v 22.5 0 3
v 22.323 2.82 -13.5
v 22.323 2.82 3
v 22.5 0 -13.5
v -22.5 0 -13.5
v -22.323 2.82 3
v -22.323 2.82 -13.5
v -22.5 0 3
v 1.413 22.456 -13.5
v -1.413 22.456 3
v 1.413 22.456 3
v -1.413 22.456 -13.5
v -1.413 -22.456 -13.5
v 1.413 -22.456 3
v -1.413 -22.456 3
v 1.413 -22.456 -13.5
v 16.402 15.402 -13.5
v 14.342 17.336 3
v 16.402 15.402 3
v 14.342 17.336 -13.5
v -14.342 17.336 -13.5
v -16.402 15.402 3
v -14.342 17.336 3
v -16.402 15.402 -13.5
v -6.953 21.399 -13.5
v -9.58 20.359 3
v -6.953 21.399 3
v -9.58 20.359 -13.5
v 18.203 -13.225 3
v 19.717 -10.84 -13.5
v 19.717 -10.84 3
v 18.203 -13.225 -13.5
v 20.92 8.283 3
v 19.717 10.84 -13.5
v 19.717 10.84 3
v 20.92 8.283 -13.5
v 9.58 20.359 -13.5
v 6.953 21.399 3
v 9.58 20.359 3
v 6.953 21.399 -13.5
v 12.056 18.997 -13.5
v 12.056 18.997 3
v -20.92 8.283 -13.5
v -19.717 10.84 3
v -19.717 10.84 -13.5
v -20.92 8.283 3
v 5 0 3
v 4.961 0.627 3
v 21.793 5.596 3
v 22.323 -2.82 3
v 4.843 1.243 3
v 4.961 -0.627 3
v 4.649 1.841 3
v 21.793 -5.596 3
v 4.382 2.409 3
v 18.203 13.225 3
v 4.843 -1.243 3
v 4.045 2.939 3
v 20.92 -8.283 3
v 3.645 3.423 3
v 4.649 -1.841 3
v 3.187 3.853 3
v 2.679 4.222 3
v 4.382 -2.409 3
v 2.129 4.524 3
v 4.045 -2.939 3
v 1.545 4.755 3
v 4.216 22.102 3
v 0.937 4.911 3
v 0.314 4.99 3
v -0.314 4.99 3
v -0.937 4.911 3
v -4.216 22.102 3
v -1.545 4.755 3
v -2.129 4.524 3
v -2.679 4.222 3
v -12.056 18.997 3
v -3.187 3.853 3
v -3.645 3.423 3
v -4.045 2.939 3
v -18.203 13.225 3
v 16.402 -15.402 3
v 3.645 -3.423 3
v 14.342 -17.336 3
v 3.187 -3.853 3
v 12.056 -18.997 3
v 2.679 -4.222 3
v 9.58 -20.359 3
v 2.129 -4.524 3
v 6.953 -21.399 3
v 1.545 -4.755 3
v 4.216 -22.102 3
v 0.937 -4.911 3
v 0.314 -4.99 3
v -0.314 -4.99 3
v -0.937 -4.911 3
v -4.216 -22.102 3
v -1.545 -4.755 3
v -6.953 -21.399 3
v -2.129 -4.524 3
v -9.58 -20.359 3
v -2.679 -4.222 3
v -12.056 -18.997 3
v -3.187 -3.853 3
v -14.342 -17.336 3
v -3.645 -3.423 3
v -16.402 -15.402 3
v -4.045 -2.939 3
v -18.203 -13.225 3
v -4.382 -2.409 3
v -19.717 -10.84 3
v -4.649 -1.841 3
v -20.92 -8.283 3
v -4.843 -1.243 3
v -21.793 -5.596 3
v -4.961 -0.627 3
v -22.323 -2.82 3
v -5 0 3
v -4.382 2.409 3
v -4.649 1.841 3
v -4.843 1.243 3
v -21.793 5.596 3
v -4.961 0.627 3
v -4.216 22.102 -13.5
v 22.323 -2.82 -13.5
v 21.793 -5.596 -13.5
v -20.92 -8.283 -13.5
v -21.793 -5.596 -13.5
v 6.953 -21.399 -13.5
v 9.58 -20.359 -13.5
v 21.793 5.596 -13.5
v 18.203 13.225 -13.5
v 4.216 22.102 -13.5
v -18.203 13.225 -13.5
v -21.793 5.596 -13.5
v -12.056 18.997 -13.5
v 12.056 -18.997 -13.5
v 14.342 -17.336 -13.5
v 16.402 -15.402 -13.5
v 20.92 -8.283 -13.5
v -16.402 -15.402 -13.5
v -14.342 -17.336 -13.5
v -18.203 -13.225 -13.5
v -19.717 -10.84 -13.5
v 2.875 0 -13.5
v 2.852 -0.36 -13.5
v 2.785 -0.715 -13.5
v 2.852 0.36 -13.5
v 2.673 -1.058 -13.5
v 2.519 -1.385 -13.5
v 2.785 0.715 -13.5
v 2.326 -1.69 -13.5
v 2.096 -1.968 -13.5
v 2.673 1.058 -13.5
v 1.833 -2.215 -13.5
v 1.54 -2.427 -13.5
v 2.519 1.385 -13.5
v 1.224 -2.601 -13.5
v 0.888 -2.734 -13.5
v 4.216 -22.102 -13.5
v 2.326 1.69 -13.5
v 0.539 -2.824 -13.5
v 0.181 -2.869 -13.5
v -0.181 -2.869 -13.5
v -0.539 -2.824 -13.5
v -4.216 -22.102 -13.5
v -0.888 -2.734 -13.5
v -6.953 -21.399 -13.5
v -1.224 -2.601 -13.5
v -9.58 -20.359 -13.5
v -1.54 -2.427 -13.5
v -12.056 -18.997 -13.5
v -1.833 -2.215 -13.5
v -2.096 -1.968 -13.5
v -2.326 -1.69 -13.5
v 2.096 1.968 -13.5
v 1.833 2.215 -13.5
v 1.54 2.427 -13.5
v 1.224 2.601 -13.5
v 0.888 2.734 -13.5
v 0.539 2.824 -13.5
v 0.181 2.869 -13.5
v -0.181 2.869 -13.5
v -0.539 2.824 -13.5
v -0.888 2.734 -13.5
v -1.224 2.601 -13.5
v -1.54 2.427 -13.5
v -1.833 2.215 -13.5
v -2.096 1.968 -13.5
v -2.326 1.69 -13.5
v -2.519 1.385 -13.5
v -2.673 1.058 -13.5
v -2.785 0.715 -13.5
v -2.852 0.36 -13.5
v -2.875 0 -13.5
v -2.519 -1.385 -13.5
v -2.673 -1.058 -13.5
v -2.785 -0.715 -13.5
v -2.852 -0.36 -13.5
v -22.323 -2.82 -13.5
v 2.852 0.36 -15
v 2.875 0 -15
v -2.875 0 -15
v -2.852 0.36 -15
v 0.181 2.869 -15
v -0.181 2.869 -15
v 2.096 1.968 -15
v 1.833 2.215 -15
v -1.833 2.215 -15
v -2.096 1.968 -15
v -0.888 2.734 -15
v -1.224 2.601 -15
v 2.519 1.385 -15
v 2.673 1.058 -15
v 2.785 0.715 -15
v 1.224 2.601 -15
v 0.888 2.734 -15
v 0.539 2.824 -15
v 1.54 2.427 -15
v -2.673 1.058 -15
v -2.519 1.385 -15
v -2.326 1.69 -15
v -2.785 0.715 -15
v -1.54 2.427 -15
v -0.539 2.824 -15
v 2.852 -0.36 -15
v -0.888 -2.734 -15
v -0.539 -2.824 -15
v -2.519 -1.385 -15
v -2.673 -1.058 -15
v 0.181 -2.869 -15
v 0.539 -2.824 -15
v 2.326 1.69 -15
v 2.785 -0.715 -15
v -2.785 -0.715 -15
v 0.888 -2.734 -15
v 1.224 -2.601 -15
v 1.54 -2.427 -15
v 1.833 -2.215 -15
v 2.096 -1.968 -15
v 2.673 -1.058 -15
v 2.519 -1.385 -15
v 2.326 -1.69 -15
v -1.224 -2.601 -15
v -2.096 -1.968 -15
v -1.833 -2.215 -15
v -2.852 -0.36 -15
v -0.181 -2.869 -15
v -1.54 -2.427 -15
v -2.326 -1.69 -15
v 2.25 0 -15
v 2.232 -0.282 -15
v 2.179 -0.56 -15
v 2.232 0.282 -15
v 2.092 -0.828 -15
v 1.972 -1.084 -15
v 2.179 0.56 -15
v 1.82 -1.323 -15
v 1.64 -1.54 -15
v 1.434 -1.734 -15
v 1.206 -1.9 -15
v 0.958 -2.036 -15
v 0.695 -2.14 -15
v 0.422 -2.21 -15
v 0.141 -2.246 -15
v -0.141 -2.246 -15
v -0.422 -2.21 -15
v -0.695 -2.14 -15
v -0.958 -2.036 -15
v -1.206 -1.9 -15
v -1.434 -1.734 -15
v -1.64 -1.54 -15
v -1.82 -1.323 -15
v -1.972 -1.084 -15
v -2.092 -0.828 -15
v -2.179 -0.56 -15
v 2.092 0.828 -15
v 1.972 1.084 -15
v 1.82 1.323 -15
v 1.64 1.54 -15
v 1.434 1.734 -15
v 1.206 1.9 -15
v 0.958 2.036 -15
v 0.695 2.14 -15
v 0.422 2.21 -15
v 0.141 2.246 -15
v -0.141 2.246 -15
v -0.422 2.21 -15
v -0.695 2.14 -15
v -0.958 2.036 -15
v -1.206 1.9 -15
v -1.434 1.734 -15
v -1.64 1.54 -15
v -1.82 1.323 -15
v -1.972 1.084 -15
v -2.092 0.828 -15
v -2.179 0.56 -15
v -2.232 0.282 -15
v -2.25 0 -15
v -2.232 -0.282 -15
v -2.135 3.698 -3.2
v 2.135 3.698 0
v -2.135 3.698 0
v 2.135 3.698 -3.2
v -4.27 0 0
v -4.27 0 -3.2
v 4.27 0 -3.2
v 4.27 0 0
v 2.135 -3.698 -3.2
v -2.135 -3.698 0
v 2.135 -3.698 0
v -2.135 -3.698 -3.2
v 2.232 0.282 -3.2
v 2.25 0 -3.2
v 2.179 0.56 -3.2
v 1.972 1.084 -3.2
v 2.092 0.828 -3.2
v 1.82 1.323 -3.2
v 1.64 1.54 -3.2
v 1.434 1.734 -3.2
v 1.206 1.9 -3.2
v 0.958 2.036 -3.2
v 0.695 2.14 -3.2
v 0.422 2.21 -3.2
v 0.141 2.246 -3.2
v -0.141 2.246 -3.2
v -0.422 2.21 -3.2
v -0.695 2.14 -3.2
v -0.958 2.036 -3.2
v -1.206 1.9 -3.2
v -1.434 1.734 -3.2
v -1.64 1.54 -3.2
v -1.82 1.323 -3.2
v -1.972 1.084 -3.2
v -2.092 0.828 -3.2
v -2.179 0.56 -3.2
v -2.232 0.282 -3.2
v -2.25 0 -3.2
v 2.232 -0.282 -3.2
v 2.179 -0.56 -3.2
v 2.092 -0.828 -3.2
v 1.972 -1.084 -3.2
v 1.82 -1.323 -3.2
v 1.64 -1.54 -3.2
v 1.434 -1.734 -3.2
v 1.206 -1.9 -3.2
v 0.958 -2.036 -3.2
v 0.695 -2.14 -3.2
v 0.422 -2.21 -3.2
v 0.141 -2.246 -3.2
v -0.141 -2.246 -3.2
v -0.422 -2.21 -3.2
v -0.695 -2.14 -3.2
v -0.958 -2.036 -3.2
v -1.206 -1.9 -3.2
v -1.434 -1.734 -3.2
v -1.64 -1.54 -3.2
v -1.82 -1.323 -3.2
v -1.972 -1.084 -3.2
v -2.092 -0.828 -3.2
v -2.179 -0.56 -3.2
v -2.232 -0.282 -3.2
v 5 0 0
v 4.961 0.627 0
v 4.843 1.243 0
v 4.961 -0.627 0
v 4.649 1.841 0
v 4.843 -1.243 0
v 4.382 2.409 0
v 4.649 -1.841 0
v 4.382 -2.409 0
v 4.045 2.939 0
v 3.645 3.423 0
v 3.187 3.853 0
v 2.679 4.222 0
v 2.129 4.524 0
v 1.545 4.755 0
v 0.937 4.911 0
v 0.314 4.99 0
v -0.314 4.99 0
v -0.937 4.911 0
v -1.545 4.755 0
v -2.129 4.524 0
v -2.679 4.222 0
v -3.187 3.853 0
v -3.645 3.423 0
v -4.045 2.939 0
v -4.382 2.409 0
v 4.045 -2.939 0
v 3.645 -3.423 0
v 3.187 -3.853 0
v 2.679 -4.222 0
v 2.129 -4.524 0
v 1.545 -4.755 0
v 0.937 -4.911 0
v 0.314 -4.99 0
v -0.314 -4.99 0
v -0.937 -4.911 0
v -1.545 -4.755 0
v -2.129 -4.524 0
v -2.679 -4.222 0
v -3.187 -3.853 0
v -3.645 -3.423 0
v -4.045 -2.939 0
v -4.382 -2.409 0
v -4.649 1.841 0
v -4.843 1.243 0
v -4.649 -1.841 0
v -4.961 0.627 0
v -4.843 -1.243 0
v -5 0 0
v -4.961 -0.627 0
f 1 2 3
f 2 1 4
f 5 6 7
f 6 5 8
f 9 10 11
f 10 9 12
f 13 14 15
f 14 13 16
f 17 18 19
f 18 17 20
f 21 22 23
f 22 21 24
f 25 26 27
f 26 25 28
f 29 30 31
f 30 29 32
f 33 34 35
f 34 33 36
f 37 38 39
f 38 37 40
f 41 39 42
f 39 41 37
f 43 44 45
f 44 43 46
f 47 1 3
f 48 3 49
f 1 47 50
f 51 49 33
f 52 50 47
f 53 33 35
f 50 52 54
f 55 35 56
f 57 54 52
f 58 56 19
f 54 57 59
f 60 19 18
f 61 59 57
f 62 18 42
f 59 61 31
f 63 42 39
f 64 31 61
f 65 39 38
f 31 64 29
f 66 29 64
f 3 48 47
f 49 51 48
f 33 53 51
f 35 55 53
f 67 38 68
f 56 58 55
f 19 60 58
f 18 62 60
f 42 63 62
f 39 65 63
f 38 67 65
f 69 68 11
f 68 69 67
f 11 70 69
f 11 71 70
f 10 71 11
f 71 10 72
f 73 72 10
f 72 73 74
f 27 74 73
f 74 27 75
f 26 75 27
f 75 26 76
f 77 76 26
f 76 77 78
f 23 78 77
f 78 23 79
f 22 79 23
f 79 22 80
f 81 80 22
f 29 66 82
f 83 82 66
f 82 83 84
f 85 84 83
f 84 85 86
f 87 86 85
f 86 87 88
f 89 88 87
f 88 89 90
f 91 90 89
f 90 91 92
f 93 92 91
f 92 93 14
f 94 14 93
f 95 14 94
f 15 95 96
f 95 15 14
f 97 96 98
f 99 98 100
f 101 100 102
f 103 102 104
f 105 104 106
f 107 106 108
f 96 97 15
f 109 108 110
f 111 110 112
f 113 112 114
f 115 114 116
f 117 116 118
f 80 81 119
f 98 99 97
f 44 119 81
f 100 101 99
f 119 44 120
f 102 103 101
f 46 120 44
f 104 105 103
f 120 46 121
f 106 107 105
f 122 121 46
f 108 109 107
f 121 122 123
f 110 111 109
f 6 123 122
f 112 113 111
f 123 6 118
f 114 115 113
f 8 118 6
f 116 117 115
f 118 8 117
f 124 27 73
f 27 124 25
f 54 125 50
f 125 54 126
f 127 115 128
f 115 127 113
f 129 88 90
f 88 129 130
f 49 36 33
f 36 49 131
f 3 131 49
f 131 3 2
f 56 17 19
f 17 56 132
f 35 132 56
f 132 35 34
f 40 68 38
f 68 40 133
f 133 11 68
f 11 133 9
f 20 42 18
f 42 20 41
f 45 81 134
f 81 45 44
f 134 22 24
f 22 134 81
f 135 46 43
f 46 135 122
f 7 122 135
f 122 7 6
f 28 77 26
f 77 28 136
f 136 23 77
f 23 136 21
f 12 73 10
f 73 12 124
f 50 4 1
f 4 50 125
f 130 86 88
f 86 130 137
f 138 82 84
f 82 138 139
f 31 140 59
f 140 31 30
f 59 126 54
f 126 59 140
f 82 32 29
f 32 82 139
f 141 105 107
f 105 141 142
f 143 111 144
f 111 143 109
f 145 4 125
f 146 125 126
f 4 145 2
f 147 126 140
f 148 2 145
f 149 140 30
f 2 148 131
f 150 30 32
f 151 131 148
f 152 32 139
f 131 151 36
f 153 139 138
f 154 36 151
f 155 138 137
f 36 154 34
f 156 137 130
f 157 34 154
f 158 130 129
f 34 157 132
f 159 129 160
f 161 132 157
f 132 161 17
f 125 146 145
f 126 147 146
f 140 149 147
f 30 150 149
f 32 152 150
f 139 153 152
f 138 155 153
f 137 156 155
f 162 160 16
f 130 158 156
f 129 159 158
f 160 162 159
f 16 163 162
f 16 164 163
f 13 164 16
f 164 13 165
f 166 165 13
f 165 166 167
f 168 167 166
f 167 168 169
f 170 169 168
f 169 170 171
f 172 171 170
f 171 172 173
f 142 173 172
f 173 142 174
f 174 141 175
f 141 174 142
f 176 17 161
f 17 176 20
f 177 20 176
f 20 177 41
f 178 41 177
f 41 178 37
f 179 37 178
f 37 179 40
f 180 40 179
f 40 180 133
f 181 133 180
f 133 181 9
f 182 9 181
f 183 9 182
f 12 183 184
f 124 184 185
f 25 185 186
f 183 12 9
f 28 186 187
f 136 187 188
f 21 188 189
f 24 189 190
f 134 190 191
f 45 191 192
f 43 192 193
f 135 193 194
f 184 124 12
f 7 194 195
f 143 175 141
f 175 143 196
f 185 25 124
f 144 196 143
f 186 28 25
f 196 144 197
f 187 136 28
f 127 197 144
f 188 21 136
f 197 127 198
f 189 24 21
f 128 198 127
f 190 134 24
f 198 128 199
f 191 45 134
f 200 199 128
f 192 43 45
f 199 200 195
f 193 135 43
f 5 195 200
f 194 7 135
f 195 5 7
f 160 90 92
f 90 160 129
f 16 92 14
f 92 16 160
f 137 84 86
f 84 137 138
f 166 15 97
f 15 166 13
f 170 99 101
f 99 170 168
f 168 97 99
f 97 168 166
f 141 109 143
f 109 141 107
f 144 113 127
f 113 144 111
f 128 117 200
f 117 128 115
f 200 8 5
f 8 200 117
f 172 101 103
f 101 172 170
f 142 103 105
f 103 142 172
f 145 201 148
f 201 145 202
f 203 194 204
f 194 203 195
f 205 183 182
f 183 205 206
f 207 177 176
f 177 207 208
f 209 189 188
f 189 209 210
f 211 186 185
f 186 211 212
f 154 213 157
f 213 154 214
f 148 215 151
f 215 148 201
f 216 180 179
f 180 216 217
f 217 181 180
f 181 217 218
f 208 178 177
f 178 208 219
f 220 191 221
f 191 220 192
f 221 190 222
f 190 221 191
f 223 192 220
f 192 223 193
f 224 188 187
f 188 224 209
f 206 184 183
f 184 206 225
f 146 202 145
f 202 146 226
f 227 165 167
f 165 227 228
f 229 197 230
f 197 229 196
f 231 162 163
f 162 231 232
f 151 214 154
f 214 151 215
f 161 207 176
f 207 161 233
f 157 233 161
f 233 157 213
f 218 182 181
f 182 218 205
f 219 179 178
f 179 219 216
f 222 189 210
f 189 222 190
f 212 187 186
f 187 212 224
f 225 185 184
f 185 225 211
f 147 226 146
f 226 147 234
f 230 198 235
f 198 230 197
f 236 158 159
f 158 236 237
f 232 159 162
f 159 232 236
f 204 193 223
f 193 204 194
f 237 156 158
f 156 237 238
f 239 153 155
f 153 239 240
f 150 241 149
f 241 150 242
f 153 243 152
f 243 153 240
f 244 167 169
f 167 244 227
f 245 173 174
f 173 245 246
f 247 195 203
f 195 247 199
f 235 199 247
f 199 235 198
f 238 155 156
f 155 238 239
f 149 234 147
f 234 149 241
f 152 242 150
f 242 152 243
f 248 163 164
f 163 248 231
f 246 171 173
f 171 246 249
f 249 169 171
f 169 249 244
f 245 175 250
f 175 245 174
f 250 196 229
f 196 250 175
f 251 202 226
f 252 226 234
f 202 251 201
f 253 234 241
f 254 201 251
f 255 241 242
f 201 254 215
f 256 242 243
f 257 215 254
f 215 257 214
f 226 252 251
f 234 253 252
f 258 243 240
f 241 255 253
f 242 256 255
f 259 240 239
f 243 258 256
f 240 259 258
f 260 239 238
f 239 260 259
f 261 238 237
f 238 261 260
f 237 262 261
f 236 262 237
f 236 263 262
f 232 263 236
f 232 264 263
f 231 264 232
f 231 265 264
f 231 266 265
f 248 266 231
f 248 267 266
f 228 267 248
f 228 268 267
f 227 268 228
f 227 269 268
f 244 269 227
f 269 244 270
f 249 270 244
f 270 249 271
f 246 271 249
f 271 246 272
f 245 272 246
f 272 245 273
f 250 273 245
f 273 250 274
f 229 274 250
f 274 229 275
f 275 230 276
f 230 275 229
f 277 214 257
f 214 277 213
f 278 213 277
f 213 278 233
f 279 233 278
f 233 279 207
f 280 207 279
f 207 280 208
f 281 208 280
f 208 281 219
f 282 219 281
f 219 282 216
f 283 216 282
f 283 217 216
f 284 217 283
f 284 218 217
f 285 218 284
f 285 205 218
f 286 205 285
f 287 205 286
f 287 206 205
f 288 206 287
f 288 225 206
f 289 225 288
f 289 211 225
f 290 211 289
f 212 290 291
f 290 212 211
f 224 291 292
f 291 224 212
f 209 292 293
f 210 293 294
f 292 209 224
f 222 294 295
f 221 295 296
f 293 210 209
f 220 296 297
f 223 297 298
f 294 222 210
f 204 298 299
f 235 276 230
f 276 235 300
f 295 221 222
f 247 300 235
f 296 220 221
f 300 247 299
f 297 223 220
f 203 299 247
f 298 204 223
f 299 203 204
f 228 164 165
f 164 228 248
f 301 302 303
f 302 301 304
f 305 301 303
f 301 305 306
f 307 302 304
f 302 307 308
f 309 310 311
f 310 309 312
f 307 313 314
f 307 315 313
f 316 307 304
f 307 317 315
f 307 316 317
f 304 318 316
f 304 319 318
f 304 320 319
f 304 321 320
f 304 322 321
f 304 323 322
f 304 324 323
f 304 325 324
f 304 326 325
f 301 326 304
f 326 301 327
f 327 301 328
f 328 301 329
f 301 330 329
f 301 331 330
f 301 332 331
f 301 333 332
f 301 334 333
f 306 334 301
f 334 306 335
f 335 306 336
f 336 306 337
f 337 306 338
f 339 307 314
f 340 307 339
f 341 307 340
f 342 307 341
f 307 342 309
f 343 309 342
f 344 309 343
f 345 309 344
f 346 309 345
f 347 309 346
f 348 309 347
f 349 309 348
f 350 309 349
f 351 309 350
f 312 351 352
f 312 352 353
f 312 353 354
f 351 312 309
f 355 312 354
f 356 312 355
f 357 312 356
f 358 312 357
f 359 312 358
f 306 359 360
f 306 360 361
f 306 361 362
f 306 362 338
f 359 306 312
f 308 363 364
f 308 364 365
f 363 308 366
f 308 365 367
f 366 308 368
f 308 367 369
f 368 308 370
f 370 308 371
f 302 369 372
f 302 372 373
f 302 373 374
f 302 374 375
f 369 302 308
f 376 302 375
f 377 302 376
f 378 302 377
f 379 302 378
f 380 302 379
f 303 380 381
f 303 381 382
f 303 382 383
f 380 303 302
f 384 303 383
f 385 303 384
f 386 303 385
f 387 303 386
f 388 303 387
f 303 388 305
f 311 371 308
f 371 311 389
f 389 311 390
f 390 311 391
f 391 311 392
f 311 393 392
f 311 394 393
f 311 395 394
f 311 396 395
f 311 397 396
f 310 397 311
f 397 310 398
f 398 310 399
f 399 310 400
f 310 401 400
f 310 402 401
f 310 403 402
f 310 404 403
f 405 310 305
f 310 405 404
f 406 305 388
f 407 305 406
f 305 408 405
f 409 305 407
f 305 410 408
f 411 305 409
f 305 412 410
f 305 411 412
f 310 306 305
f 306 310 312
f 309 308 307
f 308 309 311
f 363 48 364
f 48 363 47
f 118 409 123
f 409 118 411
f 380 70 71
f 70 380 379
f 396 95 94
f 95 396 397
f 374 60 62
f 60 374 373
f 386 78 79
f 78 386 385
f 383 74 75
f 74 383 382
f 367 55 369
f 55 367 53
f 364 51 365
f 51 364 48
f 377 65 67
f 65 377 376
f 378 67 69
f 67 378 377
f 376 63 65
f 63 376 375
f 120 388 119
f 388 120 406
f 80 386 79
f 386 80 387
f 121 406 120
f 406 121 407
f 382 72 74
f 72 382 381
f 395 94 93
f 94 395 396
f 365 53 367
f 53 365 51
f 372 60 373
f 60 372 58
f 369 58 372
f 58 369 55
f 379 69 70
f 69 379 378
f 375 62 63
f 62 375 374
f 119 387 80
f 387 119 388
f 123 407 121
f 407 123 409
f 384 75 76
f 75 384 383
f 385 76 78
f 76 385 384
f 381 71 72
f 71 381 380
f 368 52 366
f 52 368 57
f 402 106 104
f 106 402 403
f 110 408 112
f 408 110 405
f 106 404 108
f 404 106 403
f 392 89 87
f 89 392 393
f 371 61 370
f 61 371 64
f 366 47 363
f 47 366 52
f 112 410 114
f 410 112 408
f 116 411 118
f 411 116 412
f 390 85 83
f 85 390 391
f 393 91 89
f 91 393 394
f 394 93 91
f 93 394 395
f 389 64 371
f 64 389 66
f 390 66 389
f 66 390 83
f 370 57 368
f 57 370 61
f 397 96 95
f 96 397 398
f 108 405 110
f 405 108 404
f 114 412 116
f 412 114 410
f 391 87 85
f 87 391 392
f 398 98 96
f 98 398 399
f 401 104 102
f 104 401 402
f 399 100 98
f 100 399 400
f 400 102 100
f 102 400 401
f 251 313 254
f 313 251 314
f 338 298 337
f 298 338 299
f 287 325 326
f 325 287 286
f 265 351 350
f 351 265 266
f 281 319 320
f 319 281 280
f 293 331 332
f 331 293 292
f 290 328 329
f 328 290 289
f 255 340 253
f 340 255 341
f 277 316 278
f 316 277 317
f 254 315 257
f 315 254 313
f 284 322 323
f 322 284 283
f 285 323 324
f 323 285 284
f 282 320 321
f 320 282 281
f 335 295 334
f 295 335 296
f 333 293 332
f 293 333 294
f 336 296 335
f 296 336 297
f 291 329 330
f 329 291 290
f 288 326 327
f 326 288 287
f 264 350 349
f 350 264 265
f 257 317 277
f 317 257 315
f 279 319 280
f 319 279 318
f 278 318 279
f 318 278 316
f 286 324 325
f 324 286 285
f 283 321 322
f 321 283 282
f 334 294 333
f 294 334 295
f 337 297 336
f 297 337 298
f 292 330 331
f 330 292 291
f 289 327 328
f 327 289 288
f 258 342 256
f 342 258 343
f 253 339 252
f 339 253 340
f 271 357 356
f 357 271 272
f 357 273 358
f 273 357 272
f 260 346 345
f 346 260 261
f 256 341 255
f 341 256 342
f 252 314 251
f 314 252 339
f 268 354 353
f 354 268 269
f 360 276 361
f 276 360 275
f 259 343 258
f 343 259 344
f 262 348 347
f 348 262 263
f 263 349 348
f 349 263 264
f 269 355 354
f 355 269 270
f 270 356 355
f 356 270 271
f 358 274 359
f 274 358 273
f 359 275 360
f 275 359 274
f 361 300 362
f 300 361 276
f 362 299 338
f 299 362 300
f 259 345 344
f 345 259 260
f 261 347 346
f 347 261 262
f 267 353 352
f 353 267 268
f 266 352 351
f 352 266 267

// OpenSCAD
$fn = 50;

difference() {
	union() {
		translate(v = [0, 0, -13.5]) {
			cylinder(h = 16.5, r = 22.5);
		}
		#translate(v = [0, 0, -15.0]) {
			cylinder(h = 15, r = 2.875);
		}
	}
	union() {
		translate(v = [0, 0, 0]) {
			rotate(a = [0, 0, 0]) {
				difference() {
					union() {
						translate(v = [0, 0, -3.2]) {
							linear_extrude(height = 3.2) {
								polygon(points = [[4.2698, 0.0], [2.1349000000000005, 3.697755269078796], [-2.134899999999999, 3.6977552690787965], [-4.2698, 5.228996902999369e-16], [-2.134900000000002, -3.6977552690787956], [2.1348999999999974, -3.697755269078798]]);
							}
						}
					}
					union();
				}
			}
		}
		#cylinder(h = 3, r = 5.0);
		#translate(v = [0, 0, -100.0]) {
			cylinder(h = 200, r = 2.25);
		}
	}
}
